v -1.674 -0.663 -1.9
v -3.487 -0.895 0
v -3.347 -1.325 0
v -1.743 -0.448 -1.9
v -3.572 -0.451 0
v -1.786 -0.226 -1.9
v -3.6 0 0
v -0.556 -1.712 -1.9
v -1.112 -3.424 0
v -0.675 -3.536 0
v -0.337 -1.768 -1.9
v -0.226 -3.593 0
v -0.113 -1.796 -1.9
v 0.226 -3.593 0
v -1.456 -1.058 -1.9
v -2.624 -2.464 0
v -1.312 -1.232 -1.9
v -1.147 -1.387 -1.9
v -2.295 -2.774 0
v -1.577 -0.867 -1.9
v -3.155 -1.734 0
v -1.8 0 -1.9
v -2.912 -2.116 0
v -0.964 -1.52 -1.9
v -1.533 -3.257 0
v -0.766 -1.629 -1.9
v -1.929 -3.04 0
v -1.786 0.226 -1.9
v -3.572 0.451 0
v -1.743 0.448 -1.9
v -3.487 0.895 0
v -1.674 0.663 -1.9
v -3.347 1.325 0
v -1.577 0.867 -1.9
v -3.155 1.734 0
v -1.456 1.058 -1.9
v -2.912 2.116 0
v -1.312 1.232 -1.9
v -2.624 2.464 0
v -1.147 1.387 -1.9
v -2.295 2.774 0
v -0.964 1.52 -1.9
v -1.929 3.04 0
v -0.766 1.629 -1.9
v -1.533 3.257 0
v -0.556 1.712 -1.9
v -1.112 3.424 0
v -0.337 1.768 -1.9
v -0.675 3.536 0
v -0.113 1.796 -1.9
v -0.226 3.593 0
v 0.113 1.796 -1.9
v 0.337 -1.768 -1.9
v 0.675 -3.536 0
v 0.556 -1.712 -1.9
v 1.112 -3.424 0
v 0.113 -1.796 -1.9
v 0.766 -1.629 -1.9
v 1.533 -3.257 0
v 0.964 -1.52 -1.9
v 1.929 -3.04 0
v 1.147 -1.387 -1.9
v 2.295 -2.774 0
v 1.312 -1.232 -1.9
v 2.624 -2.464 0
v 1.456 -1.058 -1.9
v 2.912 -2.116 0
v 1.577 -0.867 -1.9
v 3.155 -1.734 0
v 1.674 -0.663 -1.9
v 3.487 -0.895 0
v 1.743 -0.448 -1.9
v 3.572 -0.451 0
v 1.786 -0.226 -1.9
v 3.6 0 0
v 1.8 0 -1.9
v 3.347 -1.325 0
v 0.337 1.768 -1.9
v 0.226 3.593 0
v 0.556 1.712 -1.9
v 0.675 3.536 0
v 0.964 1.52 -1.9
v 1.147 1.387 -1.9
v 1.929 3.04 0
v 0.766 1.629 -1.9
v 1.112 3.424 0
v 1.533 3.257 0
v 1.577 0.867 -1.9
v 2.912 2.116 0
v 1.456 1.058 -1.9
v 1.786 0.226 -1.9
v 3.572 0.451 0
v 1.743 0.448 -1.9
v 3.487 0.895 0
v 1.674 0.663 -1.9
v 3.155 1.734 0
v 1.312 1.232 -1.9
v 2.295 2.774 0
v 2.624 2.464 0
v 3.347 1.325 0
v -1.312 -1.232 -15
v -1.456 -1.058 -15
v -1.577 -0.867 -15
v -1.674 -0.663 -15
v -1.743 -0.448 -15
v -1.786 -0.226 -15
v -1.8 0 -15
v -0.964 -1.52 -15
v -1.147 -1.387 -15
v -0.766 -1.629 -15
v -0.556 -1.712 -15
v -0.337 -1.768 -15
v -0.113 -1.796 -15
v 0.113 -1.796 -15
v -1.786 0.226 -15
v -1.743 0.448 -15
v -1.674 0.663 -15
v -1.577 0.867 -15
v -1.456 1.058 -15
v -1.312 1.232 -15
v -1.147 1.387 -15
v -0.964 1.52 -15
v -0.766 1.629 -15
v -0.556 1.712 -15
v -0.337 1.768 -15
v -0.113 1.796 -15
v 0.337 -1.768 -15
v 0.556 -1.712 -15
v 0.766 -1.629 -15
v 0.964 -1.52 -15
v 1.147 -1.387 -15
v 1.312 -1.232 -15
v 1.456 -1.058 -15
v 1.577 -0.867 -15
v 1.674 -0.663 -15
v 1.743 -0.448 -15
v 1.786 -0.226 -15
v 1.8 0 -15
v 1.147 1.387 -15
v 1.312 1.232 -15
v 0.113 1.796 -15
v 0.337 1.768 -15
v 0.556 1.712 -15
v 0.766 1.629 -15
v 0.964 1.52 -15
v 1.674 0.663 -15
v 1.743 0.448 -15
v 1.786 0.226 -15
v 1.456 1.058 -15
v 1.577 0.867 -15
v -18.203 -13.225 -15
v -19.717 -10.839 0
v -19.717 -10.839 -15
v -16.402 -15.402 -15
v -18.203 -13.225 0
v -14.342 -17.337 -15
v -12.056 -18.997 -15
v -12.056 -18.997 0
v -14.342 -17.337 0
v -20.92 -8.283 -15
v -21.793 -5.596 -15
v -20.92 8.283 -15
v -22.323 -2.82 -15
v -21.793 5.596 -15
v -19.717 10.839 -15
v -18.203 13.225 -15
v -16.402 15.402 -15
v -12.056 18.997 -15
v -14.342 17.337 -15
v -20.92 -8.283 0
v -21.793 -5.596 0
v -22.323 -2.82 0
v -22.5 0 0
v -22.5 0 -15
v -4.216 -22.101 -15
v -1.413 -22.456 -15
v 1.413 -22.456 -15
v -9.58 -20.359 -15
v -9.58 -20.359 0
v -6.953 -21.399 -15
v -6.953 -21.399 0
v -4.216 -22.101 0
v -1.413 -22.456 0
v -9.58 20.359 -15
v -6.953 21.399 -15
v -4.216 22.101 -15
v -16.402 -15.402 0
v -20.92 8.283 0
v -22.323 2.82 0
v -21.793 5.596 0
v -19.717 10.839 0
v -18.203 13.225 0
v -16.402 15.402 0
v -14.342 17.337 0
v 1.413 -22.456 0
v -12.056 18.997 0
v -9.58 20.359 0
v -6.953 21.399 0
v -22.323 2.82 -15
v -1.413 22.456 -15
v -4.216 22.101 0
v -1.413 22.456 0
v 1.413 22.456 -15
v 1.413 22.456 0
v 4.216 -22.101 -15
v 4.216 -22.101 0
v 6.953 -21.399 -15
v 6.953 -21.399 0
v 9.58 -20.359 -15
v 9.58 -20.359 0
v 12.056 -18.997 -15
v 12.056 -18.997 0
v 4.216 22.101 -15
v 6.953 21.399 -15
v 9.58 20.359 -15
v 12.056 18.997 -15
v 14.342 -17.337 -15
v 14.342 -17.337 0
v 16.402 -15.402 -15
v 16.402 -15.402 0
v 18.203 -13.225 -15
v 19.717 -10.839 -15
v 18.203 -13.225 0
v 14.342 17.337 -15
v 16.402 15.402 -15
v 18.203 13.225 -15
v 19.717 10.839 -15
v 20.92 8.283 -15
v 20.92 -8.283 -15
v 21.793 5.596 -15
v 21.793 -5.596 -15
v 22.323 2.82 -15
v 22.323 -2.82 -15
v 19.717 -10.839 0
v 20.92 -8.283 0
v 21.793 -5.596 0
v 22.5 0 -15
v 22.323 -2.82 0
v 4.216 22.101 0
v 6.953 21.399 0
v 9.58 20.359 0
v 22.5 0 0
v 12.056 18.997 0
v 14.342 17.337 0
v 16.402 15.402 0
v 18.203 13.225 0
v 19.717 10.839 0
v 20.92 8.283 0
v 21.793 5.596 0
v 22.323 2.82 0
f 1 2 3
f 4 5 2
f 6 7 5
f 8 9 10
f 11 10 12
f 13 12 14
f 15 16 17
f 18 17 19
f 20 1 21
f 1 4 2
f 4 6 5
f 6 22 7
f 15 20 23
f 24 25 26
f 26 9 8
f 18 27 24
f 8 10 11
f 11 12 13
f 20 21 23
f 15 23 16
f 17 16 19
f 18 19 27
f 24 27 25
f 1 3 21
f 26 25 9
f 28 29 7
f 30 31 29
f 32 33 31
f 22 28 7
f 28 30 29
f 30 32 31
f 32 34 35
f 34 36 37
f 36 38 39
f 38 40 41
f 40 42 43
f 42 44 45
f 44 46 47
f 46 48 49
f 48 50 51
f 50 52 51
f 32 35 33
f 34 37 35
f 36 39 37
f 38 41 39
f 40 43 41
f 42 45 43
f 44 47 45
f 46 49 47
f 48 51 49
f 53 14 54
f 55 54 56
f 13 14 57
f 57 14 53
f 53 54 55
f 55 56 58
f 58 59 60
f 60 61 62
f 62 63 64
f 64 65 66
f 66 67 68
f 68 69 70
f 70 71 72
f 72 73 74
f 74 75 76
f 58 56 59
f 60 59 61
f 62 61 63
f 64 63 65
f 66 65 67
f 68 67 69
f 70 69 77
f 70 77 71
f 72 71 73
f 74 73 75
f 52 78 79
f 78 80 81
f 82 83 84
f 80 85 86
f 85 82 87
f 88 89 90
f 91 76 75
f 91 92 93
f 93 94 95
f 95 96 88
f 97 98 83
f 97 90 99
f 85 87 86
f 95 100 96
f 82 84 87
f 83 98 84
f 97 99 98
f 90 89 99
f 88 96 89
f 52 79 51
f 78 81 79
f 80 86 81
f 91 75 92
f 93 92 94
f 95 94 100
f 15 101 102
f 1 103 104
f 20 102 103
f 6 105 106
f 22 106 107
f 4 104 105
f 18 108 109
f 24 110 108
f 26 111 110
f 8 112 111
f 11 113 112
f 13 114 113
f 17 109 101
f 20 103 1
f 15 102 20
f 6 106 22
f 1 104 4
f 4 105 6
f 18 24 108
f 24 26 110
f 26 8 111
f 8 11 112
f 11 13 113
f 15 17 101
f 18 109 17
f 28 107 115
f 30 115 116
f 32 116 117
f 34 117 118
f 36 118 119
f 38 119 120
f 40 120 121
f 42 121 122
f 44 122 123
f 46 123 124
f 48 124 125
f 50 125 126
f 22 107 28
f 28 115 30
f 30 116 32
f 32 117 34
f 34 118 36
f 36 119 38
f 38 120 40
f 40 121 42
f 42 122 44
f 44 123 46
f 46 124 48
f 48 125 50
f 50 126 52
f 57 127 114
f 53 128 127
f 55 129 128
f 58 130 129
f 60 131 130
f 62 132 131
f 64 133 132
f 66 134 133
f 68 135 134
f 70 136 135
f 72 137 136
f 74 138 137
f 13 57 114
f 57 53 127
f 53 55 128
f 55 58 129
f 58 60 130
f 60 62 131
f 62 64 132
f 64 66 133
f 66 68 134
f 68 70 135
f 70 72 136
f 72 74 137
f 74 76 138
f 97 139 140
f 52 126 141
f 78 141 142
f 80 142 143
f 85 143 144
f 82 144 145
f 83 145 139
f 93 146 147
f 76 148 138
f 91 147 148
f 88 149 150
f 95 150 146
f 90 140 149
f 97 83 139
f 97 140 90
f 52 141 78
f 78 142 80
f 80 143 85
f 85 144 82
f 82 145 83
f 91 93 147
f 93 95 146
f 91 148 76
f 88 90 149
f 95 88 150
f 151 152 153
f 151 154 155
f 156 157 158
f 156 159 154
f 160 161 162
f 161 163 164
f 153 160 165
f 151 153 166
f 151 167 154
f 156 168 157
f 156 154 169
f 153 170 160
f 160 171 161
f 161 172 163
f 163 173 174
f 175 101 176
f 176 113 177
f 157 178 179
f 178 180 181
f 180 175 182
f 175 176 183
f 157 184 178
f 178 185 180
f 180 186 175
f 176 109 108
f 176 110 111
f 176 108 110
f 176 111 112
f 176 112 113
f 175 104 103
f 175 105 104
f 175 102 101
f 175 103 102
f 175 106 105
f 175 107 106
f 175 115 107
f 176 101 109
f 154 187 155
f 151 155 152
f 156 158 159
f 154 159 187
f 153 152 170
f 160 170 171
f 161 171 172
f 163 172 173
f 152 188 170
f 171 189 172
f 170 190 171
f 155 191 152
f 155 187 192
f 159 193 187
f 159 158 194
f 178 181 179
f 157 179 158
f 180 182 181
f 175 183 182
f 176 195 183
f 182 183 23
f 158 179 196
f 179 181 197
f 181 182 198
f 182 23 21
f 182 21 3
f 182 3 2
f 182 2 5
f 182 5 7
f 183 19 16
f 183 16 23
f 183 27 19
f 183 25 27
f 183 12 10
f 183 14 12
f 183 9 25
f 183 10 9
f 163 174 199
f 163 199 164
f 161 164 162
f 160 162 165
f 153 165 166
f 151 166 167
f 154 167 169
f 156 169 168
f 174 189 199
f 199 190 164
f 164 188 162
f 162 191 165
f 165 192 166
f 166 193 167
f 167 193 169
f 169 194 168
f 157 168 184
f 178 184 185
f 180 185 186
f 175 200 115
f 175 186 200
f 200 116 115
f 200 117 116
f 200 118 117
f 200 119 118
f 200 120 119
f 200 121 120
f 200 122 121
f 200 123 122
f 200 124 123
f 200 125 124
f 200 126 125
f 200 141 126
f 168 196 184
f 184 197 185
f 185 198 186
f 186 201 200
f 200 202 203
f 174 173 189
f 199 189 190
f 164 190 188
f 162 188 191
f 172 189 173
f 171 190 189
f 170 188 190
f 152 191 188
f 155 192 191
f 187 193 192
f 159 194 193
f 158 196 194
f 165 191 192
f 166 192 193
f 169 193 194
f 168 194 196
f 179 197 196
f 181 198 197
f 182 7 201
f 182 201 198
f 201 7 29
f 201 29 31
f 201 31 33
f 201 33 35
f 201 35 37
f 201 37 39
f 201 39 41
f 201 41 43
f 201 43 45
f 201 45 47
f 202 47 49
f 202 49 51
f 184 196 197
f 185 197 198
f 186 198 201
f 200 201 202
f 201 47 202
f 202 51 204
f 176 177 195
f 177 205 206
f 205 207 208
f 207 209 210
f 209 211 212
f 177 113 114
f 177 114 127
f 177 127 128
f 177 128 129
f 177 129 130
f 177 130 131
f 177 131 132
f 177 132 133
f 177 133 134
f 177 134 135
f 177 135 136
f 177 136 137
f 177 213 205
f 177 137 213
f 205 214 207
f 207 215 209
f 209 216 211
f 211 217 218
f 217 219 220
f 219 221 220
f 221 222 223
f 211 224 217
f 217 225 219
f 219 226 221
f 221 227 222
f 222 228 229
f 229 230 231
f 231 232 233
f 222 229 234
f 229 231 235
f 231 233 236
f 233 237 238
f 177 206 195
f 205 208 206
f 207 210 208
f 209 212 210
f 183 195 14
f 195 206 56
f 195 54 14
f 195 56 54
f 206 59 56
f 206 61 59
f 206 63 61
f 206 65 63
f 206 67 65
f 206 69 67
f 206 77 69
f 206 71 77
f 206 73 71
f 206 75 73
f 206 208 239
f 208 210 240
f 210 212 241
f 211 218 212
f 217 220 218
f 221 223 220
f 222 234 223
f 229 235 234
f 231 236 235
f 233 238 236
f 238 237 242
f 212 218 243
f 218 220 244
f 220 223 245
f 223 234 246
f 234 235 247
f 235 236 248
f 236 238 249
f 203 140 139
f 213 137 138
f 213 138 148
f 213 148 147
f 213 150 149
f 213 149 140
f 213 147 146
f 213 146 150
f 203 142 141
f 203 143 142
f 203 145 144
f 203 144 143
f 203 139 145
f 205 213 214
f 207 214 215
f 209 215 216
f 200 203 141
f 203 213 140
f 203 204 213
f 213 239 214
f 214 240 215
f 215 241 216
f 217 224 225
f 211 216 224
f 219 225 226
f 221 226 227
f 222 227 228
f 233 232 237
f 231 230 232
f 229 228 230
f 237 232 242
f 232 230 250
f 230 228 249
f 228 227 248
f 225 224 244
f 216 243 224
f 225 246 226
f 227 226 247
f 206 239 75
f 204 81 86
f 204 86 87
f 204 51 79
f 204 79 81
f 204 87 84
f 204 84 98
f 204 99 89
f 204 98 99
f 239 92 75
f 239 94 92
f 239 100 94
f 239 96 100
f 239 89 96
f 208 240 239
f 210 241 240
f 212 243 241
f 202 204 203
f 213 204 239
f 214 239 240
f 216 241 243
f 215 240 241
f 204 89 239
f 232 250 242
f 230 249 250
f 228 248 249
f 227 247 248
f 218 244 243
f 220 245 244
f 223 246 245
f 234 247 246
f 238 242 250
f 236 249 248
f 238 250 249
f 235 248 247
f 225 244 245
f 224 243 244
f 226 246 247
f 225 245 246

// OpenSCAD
$fn = 50;

difference() {
	union() {
		translate(v = [0, 0, -15.0]) {
			cylinder(h = 15, r = 22.5);
		}
	}
	union() {
		translate(v = [0, 0, 0]) {
			rotate(a = [0, 0, 0]) {
				difference() {
					union() {
						translate(v = [0, 0, -18.0]) {
							cylinder(h = 18, r = 1.5);
						}
						translate(v = [0, 0, -1.9]) {
							cylinder(h = 1.9, r1 = 1.8, r2 = 3.6);
						}
						translate(v = [0, 0, -18.0]) {
							cylinder(h = 18, r = 1.8);
						}
						translate(v = [0, 0, -18.0]) {
							cylinder(h = 18, r = 1.5);
						}
					}
					union();
				}
			}
		}
	}
}
